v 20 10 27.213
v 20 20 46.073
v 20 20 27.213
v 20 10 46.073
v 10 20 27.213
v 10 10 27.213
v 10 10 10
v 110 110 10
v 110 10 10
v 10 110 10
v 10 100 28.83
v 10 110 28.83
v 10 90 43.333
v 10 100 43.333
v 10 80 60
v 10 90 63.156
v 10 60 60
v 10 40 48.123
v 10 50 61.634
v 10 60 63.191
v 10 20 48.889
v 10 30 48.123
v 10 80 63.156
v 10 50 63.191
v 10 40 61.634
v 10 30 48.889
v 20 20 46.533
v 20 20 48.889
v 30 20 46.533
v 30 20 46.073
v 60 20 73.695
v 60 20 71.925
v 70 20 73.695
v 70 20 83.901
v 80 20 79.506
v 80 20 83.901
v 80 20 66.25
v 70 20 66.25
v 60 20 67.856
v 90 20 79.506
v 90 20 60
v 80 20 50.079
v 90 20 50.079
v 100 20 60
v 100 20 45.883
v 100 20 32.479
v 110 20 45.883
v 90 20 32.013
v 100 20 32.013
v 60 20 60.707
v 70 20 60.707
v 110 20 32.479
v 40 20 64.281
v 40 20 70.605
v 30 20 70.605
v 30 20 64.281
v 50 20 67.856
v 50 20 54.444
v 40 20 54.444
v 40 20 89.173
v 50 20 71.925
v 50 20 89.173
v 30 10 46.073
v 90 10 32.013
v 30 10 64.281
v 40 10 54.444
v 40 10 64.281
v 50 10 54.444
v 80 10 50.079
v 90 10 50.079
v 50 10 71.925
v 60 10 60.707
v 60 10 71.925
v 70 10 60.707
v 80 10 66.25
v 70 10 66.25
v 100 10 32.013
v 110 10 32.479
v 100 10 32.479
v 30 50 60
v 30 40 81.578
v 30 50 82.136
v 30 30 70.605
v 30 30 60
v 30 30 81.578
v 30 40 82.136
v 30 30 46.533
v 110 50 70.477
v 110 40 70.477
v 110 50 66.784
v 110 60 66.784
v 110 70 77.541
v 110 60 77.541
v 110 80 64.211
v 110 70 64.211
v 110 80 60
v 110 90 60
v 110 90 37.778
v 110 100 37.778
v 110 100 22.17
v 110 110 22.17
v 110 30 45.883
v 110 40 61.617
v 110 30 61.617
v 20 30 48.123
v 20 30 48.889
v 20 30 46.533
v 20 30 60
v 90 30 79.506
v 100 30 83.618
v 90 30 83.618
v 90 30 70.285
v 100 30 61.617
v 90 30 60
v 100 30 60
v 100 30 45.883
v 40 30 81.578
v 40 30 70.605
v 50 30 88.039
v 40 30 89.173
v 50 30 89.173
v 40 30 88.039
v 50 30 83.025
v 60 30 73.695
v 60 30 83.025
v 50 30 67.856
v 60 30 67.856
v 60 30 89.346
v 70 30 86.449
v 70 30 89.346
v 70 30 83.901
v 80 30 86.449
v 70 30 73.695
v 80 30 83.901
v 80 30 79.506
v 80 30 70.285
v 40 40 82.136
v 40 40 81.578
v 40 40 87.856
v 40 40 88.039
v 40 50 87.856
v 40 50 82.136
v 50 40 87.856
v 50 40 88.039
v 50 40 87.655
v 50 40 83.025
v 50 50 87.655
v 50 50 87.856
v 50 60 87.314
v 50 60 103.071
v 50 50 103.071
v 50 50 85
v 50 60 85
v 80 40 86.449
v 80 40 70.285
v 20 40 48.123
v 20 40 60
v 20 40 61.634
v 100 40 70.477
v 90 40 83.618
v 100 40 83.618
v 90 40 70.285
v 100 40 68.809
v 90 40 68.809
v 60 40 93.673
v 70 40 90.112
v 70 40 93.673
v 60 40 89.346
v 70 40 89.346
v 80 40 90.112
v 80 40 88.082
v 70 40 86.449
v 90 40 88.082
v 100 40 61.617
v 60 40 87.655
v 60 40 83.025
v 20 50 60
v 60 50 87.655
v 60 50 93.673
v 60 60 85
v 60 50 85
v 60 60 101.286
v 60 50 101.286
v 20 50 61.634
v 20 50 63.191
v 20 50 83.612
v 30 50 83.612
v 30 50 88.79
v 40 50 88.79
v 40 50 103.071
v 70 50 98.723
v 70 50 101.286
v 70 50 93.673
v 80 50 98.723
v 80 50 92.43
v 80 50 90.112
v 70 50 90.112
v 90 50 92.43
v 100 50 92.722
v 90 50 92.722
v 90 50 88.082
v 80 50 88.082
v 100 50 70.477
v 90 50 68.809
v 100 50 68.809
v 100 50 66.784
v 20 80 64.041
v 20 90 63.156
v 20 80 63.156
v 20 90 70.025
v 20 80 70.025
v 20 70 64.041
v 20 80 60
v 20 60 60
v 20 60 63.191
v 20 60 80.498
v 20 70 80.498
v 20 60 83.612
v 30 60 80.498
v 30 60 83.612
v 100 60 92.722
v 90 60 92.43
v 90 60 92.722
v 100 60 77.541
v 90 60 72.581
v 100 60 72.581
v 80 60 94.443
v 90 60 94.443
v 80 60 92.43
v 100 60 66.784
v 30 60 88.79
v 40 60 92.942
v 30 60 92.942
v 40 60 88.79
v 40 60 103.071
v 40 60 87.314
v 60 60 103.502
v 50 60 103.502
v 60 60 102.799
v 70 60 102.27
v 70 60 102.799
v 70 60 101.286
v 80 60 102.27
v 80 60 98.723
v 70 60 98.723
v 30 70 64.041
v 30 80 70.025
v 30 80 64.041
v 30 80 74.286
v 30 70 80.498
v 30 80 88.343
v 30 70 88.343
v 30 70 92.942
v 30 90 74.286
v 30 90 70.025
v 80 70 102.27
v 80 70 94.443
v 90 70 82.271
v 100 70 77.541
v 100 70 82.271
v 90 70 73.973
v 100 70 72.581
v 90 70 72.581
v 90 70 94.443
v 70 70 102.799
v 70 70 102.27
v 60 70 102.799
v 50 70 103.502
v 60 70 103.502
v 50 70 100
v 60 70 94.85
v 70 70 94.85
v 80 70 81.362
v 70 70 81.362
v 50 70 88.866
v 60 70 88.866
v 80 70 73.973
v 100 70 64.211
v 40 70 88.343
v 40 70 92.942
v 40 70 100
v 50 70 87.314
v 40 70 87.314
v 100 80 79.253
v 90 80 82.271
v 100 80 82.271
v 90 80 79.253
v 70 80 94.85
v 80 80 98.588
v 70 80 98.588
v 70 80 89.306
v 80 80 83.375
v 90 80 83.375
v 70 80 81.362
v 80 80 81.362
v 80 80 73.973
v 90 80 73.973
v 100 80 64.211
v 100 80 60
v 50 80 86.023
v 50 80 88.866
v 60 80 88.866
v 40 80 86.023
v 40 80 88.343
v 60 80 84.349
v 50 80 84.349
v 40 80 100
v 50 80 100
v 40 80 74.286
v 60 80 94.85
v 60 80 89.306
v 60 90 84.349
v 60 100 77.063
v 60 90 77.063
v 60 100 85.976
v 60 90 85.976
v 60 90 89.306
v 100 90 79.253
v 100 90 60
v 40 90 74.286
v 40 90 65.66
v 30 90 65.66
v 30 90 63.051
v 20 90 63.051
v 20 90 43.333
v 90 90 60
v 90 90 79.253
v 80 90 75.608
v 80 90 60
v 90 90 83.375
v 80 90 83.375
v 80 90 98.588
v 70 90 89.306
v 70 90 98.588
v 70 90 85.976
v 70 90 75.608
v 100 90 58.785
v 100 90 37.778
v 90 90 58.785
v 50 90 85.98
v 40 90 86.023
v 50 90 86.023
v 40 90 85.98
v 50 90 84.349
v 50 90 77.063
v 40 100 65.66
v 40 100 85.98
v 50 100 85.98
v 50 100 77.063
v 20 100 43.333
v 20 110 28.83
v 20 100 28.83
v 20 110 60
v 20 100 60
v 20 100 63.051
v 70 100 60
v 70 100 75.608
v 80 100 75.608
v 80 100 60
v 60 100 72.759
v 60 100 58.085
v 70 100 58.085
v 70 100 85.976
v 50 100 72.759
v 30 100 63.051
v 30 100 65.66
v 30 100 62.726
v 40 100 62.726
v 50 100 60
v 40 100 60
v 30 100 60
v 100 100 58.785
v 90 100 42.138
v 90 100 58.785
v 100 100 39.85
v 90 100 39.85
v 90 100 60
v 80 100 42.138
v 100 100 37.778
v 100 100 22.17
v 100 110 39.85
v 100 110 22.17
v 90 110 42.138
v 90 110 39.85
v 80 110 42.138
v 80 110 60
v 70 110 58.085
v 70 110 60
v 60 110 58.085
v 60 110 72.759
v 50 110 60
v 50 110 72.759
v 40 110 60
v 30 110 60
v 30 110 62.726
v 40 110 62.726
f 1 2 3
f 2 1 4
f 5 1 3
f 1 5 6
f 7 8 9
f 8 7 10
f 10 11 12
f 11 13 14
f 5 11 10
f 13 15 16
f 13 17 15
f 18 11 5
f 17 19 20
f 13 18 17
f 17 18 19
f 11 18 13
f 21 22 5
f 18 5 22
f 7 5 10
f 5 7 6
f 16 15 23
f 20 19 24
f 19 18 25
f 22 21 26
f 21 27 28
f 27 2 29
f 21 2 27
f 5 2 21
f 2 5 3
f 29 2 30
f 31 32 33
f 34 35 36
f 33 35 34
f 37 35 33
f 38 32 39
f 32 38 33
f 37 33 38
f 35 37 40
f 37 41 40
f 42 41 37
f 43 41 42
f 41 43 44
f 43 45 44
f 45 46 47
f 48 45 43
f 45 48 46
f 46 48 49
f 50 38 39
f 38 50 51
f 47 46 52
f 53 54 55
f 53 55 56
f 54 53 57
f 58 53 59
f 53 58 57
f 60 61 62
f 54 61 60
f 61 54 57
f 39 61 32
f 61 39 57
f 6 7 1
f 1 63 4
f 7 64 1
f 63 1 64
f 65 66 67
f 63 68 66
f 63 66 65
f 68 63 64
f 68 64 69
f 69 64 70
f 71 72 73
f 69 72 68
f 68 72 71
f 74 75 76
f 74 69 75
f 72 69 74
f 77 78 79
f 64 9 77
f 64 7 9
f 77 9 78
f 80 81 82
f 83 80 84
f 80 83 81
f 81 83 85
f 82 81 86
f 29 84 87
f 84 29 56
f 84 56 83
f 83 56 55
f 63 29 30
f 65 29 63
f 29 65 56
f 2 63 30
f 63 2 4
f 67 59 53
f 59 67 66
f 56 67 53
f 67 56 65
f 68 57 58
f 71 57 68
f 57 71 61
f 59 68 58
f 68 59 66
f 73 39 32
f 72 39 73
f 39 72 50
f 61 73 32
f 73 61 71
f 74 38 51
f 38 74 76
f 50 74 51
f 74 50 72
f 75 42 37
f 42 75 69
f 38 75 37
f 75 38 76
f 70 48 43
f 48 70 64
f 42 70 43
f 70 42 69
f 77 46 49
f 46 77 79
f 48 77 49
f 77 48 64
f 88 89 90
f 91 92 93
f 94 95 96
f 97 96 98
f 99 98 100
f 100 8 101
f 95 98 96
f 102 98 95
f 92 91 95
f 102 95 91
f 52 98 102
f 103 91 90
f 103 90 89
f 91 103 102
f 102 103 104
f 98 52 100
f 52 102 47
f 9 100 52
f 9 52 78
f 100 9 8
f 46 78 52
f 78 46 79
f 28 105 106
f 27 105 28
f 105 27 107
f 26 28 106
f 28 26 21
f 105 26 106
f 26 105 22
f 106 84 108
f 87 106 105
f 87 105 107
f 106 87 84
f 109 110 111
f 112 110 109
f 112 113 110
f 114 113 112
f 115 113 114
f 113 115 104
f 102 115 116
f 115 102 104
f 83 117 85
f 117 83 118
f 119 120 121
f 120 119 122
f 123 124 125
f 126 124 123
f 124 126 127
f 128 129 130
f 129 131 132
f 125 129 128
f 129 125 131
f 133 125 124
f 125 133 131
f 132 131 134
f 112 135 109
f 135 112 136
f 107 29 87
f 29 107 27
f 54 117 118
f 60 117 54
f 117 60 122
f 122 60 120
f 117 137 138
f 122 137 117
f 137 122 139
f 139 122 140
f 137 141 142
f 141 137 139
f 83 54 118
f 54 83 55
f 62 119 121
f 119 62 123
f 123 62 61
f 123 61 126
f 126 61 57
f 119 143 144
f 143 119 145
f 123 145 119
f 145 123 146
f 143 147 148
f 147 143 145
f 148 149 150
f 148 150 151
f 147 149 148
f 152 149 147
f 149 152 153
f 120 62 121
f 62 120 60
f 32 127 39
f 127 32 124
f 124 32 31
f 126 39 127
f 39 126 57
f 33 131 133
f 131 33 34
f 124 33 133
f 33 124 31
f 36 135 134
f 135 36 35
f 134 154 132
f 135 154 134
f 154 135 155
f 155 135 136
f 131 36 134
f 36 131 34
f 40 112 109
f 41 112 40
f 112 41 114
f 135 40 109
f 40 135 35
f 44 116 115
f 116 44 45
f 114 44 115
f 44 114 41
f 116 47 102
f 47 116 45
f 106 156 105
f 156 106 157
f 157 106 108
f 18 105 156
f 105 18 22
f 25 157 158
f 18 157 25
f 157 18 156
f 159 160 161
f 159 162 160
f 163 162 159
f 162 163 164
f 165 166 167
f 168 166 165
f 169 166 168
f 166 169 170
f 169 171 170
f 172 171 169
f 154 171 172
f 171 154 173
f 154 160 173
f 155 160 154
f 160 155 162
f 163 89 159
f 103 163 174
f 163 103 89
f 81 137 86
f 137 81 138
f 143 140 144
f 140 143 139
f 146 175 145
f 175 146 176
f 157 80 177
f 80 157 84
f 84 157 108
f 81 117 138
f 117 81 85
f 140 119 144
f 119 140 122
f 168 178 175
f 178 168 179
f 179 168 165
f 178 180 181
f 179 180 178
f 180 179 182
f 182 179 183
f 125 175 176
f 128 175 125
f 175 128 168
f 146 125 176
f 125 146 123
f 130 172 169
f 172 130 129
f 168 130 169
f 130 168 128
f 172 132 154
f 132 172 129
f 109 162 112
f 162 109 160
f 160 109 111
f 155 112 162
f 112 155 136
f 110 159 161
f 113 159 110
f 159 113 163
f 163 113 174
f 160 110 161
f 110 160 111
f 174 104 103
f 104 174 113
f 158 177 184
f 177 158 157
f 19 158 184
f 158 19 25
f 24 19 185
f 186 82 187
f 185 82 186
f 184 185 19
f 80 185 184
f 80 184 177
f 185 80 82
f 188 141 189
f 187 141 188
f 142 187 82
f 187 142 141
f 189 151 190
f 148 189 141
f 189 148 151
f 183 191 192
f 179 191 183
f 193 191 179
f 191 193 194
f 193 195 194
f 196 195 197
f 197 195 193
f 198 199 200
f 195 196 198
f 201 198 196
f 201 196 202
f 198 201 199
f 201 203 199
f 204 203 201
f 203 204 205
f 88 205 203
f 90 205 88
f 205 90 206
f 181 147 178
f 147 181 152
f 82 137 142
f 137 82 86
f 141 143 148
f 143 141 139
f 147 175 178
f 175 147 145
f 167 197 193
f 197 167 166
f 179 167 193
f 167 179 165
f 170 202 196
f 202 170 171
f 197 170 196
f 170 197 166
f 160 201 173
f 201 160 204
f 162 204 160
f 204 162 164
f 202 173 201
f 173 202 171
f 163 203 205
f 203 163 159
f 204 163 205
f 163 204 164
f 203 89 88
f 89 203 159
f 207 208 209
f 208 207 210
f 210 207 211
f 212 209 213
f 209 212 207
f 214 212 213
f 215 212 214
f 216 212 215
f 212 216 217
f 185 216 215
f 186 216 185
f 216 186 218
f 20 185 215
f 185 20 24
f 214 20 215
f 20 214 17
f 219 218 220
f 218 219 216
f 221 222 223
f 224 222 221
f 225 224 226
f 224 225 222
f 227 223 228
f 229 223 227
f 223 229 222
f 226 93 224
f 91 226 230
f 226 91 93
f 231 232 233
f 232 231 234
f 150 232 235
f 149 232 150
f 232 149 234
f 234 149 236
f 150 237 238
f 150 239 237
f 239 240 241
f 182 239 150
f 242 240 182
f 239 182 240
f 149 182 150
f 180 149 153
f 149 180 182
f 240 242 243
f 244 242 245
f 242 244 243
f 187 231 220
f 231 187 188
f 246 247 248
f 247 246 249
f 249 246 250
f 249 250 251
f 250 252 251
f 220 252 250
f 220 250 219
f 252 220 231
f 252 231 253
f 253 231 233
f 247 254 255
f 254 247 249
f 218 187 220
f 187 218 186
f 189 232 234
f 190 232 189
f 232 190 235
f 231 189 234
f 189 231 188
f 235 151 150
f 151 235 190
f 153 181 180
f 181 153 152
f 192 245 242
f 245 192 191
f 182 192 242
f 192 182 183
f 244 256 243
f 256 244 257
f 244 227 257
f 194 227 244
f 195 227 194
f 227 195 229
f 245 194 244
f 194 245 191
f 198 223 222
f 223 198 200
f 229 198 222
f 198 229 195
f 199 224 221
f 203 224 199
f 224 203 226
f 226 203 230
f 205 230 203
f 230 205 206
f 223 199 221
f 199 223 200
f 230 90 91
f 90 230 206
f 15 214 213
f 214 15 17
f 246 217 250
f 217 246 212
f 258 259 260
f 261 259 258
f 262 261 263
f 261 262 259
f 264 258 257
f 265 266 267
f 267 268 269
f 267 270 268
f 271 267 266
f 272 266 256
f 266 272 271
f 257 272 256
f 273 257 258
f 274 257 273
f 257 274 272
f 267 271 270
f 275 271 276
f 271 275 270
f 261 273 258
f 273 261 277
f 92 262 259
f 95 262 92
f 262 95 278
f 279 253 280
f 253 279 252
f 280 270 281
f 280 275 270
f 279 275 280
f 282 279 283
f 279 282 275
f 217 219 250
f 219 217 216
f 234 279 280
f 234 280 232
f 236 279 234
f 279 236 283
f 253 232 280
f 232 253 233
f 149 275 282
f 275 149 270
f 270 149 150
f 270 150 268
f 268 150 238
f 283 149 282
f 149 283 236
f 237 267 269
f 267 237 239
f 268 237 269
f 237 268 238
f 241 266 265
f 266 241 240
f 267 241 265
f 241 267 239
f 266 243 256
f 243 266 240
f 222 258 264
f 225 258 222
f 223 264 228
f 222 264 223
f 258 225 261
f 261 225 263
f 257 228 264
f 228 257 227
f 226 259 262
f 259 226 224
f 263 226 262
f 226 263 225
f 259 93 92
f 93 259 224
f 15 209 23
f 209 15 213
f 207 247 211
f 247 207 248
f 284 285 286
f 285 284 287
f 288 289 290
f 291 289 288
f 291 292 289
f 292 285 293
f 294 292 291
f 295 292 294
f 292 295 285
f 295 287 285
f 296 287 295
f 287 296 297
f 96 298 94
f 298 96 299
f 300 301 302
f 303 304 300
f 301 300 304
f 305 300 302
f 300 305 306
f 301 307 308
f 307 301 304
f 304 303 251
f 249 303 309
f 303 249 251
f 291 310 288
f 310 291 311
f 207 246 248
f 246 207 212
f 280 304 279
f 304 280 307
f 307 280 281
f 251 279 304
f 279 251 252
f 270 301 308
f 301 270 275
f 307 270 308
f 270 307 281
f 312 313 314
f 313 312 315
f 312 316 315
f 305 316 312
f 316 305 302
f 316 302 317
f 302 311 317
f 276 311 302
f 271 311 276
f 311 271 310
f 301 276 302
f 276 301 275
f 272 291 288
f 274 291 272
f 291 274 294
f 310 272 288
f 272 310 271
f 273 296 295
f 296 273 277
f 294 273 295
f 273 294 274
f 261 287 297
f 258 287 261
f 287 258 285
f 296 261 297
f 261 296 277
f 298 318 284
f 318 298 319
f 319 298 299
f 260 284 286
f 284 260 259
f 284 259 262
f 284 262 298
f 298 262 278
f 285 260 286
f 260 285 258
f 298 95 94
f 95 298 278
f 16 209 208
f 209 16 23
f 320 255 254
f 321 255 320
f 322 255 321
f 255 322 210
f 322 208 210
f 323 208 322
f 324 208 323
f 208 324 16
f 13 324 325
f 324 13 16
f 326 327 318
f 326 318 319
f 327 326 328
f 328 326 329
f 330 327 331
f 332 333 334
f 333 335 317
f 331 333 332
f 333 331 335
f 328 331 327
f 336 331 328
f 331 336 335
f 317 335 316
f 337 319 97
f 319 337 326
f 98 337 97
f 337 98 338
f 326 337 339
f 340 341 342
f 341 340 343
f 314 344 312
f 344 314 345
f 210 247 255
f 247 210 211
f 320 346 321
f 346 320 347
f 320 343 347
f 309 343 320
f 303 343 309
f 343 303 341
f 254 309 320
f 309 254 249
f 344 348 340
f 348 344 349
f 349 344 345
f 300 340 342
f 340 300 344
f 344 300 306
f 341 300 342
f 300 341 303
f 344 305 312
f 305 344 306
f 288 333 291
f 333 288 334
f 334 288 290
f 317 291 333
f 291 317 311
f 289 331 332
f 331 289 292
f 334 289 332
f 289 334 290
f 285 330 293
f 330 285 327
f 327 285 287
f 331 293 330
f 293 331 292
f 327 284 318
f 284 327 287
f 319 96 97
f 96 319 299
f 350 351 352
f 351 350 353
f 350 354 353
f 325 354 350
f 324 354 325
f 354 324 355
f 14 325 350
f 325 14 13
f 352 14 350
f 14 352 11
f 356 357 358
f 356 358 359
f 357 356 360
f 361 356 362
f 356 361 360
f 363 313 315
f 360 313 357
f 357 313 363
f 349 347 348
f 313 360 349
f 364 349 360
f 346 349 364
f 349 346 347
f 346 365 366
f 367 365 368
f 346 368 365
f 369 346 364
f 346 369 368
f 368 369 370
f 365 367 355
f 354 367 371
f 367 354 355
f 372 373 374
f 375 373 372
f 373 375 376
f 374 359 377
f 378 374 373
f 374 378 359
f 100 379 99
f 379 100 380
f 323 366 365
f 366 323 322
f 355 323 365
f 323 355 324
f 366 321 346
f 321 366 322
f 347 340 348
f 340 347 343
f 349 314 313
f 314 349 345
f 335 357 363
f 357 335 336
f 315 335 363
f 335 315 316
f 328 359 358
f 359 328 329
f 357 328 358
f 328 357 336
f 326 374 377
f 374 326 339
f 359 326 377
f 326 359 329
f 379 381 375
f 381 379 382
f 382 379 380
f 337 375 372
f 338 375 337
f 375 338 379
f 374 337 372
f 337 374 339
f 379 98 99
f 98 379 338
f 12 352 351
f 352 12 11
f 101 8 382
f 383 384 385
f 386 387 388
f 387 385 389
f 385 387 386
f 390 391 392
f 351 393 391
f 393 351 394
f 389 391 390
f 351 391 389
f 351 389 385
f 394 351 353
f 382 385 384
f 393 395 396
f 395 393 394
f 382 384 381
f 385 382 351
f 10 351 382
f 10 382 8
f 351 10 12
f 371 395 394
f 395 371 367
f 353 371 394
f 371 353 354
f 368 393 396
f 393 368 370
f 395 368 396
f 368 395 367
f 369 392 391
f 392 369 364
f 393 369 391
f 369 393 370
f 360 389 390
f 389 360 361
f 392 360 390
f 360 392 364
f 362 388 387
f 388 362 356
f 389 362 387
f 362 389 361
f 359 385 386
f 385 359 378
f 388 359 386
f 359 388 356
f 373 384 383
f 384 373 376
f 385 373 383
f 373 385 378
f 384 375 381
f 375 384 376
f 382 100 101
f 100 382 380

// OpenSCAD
// These are filled in by R
code = "Set 1";

// An array of 10 length-10 vectors.
bar_size_array = [
[17.2132916532488,36.0726778298176,54.2805262628744,44.4444444444444,61.9245526818619,50.7074818380197,56.25,40.0785338307062,22.0127311987223,22.4791120091637],
[38.8888888888889,36.5326685973083,60.6048197004773,79.1733622802731,57.8561014062212,63.6954720806375,73.9009126352287,69.5058337232162,50,35.883306175941],
[38.1227054057077,50,71.5781966823856,78.0387893728885,73.0247641215147,79.3457321581292,76.4487140449692,60.2850865121486,73.6180225635272,51.6168085569634],
[51.6338022642176,50,72.1359195374152,77.8564545475736,77.6548459734233,83.6727355531855,80.1118734750418,78.0822829776518,58.8090469659699,60.4772399602897],
[53.1909972031816,73.6119311325102,78.7898152265196,93.0707104707105,75,91.2860602492667,88.7231732538991,82.430390424427,82.7221844761274,56.7836807418812],
[50,70.4978204440376,82.9419683036247,77.3135338983101,93.5021713686879,92.7988617990163,92.2702618237552,84.4433450329672,62.5809750772325,67.5406969859362],
[50,54.04074810748,78.3429021915171,90,78.8655086916362,84.8496818563354,71.3615695358822,63.9732487434342,72.2713392999096,54.210772462078],
[53.156399060411,60.0248403434983,64.2857142857143,76.0232773758408,74.3494959853926,79.3062840090834,88.5882590982453,73.3749200518473,69.2533076489751,50],
[33.3333333333333,53.0511631182311,55.6600056166252,75.9804710617615,67.0628823114062,75.9764709211653,65.6082979786601,50,48.7851150015597,27.7777777777778],
[18.8303895035829,50,52.7256323320697,50,62.759087567418,48.0849922621125,50,32.1382652843772,29.8500876249718,12.1695641200453]
];


letter_array = [
["","","","H","","","m","","",""],
["G","","","","","","","","M",""],
["","h","","","","","","","",""],
["","Y","","","","","","","",""],
["","","","","y","","","","",""],
["g","","","","","","","","",""],
["a","","","A","","","","","",""],
["","","q","","","","","","","f"],
["r","","","","","","","F","","d"],
["","Q","","R","","","D","","",""]
];

x_axis_label = "Factor 1";
y_axis_label = "Factor 2";

bar_dims_xy=[10,10]; // in mm
n_bars_xy=[10,10];
plot_margins_xy=[[10,10],[10,10]]; // in mm

base_color = [0, 0, 0]; // black
label_color = [1, 1, 1]; // white
bar_color = [.5, .5, .5]; // grey

//---------------------------------------------------------------------

// Cumulative sum function
// https://en.wikibooks.org/wiki/OpenSCAD_User_Manual/Tips_and_Tricks#Cumulative_sum
function cumsum(values) = ([ for (a=0, b=values[0]; a < len(values); a= a+1, b=b+(values[a]==undef?0:values[a])) b] );

// Add vector values
// https://en.wikibooks.org/wiki/OpenSCAD_User_Manual/Tips_and_Tricks#Add_all_values_in_a_list
function add(v, i = 0, r = 0) = i < len(v) ? add(v, i + 1, r + v[i]) : r;

// Add vectors
// https://forum.openscad.org/adding-vectors-function-td14524.html
function addvec(v, av) = (len(v) == len(av)) ? [ for (i = [ 0 : len(v)-1 ]) v[i] + av[i] ] : [0,0,0];

// Letter extrusion code
// https://files.openscad.org/examples/Basics/text_on_cube.html
font = "Atkinson Hyperlegible Next:style=Bold";

module letter(l, size=letter_size, height=letter_height) {
	// Use linear_extrude() to make the letters 3D objects as they
	// are only 2D shapes when only using text()
    if(1!="") {
        linear_extrude(height = height) {
            text(l, size = size, font = font, halign = "center", valign = "center", $fn = 16);
        }
    }
}

letter_size = 5; // 5mm
letter_height = 2; // 2mm

//---------------------------------------------------------------------

// These define the [x,y] dims of the bar, in mm
bar_size_x = [for(i = [0:(n_bars_xy[0]-1)]) bar_dims_xy[0]];
bar_size_y = [for(i = [0:(n_bars_xy[1]-1)]) bar_dims_xy[1]];

// These define the plot margins
margins_x = plot_margins_xy[0];
margins_y = plot_margins_xy[1];

// This calculates the base dimensions
base_x = margins_x[0] + margins_x[1] + add(bar_size_x);
base_y = margins_y[0] + margins_y[1] + add(bar_size_y);
base_z = 10;
echo("Base size", base_x, base_y, base_z);

// These define the location of the bottom of the bar
bar_x = cumsum(bar_size_x);
bar_y = cumsum(bar_size_y);
bar_z = [for(i = [0:1:9]) base_z];

// These define the location of the text on the bar (if applicable)
letter_x = addvec(bar_x, bar_size_x/2);
letter_y = addvec(bar_y, bar_size_x/2);
letter_z = [for(i=[0:(n_bars_xy[0]-1)]) addvec(bar_z, bar_size_array[i])];


render(){
    difference(){
        union(){


            // Bars
            for(i = [0:9]) {
                for(j = [0:9]) {
                    translate([bar_y[j], bar_x[i], bar_z[i]])
                        color(bar_color)
                        cube([bar_size_y[j], bar_size_x[i], bar_size_array[i][j]]);

                }
            }

            // TODO: Create this based off of groups...


            labels_x = [base_x/2, margins_x[0]/2];
            labels_y = [margins_y[0]/2, base_y/2];
            labels_z = [base_z, base_z];
            rotation = [0, 90];
            labels = [x_axis_label, y_axis_label];


        };

    }
}
